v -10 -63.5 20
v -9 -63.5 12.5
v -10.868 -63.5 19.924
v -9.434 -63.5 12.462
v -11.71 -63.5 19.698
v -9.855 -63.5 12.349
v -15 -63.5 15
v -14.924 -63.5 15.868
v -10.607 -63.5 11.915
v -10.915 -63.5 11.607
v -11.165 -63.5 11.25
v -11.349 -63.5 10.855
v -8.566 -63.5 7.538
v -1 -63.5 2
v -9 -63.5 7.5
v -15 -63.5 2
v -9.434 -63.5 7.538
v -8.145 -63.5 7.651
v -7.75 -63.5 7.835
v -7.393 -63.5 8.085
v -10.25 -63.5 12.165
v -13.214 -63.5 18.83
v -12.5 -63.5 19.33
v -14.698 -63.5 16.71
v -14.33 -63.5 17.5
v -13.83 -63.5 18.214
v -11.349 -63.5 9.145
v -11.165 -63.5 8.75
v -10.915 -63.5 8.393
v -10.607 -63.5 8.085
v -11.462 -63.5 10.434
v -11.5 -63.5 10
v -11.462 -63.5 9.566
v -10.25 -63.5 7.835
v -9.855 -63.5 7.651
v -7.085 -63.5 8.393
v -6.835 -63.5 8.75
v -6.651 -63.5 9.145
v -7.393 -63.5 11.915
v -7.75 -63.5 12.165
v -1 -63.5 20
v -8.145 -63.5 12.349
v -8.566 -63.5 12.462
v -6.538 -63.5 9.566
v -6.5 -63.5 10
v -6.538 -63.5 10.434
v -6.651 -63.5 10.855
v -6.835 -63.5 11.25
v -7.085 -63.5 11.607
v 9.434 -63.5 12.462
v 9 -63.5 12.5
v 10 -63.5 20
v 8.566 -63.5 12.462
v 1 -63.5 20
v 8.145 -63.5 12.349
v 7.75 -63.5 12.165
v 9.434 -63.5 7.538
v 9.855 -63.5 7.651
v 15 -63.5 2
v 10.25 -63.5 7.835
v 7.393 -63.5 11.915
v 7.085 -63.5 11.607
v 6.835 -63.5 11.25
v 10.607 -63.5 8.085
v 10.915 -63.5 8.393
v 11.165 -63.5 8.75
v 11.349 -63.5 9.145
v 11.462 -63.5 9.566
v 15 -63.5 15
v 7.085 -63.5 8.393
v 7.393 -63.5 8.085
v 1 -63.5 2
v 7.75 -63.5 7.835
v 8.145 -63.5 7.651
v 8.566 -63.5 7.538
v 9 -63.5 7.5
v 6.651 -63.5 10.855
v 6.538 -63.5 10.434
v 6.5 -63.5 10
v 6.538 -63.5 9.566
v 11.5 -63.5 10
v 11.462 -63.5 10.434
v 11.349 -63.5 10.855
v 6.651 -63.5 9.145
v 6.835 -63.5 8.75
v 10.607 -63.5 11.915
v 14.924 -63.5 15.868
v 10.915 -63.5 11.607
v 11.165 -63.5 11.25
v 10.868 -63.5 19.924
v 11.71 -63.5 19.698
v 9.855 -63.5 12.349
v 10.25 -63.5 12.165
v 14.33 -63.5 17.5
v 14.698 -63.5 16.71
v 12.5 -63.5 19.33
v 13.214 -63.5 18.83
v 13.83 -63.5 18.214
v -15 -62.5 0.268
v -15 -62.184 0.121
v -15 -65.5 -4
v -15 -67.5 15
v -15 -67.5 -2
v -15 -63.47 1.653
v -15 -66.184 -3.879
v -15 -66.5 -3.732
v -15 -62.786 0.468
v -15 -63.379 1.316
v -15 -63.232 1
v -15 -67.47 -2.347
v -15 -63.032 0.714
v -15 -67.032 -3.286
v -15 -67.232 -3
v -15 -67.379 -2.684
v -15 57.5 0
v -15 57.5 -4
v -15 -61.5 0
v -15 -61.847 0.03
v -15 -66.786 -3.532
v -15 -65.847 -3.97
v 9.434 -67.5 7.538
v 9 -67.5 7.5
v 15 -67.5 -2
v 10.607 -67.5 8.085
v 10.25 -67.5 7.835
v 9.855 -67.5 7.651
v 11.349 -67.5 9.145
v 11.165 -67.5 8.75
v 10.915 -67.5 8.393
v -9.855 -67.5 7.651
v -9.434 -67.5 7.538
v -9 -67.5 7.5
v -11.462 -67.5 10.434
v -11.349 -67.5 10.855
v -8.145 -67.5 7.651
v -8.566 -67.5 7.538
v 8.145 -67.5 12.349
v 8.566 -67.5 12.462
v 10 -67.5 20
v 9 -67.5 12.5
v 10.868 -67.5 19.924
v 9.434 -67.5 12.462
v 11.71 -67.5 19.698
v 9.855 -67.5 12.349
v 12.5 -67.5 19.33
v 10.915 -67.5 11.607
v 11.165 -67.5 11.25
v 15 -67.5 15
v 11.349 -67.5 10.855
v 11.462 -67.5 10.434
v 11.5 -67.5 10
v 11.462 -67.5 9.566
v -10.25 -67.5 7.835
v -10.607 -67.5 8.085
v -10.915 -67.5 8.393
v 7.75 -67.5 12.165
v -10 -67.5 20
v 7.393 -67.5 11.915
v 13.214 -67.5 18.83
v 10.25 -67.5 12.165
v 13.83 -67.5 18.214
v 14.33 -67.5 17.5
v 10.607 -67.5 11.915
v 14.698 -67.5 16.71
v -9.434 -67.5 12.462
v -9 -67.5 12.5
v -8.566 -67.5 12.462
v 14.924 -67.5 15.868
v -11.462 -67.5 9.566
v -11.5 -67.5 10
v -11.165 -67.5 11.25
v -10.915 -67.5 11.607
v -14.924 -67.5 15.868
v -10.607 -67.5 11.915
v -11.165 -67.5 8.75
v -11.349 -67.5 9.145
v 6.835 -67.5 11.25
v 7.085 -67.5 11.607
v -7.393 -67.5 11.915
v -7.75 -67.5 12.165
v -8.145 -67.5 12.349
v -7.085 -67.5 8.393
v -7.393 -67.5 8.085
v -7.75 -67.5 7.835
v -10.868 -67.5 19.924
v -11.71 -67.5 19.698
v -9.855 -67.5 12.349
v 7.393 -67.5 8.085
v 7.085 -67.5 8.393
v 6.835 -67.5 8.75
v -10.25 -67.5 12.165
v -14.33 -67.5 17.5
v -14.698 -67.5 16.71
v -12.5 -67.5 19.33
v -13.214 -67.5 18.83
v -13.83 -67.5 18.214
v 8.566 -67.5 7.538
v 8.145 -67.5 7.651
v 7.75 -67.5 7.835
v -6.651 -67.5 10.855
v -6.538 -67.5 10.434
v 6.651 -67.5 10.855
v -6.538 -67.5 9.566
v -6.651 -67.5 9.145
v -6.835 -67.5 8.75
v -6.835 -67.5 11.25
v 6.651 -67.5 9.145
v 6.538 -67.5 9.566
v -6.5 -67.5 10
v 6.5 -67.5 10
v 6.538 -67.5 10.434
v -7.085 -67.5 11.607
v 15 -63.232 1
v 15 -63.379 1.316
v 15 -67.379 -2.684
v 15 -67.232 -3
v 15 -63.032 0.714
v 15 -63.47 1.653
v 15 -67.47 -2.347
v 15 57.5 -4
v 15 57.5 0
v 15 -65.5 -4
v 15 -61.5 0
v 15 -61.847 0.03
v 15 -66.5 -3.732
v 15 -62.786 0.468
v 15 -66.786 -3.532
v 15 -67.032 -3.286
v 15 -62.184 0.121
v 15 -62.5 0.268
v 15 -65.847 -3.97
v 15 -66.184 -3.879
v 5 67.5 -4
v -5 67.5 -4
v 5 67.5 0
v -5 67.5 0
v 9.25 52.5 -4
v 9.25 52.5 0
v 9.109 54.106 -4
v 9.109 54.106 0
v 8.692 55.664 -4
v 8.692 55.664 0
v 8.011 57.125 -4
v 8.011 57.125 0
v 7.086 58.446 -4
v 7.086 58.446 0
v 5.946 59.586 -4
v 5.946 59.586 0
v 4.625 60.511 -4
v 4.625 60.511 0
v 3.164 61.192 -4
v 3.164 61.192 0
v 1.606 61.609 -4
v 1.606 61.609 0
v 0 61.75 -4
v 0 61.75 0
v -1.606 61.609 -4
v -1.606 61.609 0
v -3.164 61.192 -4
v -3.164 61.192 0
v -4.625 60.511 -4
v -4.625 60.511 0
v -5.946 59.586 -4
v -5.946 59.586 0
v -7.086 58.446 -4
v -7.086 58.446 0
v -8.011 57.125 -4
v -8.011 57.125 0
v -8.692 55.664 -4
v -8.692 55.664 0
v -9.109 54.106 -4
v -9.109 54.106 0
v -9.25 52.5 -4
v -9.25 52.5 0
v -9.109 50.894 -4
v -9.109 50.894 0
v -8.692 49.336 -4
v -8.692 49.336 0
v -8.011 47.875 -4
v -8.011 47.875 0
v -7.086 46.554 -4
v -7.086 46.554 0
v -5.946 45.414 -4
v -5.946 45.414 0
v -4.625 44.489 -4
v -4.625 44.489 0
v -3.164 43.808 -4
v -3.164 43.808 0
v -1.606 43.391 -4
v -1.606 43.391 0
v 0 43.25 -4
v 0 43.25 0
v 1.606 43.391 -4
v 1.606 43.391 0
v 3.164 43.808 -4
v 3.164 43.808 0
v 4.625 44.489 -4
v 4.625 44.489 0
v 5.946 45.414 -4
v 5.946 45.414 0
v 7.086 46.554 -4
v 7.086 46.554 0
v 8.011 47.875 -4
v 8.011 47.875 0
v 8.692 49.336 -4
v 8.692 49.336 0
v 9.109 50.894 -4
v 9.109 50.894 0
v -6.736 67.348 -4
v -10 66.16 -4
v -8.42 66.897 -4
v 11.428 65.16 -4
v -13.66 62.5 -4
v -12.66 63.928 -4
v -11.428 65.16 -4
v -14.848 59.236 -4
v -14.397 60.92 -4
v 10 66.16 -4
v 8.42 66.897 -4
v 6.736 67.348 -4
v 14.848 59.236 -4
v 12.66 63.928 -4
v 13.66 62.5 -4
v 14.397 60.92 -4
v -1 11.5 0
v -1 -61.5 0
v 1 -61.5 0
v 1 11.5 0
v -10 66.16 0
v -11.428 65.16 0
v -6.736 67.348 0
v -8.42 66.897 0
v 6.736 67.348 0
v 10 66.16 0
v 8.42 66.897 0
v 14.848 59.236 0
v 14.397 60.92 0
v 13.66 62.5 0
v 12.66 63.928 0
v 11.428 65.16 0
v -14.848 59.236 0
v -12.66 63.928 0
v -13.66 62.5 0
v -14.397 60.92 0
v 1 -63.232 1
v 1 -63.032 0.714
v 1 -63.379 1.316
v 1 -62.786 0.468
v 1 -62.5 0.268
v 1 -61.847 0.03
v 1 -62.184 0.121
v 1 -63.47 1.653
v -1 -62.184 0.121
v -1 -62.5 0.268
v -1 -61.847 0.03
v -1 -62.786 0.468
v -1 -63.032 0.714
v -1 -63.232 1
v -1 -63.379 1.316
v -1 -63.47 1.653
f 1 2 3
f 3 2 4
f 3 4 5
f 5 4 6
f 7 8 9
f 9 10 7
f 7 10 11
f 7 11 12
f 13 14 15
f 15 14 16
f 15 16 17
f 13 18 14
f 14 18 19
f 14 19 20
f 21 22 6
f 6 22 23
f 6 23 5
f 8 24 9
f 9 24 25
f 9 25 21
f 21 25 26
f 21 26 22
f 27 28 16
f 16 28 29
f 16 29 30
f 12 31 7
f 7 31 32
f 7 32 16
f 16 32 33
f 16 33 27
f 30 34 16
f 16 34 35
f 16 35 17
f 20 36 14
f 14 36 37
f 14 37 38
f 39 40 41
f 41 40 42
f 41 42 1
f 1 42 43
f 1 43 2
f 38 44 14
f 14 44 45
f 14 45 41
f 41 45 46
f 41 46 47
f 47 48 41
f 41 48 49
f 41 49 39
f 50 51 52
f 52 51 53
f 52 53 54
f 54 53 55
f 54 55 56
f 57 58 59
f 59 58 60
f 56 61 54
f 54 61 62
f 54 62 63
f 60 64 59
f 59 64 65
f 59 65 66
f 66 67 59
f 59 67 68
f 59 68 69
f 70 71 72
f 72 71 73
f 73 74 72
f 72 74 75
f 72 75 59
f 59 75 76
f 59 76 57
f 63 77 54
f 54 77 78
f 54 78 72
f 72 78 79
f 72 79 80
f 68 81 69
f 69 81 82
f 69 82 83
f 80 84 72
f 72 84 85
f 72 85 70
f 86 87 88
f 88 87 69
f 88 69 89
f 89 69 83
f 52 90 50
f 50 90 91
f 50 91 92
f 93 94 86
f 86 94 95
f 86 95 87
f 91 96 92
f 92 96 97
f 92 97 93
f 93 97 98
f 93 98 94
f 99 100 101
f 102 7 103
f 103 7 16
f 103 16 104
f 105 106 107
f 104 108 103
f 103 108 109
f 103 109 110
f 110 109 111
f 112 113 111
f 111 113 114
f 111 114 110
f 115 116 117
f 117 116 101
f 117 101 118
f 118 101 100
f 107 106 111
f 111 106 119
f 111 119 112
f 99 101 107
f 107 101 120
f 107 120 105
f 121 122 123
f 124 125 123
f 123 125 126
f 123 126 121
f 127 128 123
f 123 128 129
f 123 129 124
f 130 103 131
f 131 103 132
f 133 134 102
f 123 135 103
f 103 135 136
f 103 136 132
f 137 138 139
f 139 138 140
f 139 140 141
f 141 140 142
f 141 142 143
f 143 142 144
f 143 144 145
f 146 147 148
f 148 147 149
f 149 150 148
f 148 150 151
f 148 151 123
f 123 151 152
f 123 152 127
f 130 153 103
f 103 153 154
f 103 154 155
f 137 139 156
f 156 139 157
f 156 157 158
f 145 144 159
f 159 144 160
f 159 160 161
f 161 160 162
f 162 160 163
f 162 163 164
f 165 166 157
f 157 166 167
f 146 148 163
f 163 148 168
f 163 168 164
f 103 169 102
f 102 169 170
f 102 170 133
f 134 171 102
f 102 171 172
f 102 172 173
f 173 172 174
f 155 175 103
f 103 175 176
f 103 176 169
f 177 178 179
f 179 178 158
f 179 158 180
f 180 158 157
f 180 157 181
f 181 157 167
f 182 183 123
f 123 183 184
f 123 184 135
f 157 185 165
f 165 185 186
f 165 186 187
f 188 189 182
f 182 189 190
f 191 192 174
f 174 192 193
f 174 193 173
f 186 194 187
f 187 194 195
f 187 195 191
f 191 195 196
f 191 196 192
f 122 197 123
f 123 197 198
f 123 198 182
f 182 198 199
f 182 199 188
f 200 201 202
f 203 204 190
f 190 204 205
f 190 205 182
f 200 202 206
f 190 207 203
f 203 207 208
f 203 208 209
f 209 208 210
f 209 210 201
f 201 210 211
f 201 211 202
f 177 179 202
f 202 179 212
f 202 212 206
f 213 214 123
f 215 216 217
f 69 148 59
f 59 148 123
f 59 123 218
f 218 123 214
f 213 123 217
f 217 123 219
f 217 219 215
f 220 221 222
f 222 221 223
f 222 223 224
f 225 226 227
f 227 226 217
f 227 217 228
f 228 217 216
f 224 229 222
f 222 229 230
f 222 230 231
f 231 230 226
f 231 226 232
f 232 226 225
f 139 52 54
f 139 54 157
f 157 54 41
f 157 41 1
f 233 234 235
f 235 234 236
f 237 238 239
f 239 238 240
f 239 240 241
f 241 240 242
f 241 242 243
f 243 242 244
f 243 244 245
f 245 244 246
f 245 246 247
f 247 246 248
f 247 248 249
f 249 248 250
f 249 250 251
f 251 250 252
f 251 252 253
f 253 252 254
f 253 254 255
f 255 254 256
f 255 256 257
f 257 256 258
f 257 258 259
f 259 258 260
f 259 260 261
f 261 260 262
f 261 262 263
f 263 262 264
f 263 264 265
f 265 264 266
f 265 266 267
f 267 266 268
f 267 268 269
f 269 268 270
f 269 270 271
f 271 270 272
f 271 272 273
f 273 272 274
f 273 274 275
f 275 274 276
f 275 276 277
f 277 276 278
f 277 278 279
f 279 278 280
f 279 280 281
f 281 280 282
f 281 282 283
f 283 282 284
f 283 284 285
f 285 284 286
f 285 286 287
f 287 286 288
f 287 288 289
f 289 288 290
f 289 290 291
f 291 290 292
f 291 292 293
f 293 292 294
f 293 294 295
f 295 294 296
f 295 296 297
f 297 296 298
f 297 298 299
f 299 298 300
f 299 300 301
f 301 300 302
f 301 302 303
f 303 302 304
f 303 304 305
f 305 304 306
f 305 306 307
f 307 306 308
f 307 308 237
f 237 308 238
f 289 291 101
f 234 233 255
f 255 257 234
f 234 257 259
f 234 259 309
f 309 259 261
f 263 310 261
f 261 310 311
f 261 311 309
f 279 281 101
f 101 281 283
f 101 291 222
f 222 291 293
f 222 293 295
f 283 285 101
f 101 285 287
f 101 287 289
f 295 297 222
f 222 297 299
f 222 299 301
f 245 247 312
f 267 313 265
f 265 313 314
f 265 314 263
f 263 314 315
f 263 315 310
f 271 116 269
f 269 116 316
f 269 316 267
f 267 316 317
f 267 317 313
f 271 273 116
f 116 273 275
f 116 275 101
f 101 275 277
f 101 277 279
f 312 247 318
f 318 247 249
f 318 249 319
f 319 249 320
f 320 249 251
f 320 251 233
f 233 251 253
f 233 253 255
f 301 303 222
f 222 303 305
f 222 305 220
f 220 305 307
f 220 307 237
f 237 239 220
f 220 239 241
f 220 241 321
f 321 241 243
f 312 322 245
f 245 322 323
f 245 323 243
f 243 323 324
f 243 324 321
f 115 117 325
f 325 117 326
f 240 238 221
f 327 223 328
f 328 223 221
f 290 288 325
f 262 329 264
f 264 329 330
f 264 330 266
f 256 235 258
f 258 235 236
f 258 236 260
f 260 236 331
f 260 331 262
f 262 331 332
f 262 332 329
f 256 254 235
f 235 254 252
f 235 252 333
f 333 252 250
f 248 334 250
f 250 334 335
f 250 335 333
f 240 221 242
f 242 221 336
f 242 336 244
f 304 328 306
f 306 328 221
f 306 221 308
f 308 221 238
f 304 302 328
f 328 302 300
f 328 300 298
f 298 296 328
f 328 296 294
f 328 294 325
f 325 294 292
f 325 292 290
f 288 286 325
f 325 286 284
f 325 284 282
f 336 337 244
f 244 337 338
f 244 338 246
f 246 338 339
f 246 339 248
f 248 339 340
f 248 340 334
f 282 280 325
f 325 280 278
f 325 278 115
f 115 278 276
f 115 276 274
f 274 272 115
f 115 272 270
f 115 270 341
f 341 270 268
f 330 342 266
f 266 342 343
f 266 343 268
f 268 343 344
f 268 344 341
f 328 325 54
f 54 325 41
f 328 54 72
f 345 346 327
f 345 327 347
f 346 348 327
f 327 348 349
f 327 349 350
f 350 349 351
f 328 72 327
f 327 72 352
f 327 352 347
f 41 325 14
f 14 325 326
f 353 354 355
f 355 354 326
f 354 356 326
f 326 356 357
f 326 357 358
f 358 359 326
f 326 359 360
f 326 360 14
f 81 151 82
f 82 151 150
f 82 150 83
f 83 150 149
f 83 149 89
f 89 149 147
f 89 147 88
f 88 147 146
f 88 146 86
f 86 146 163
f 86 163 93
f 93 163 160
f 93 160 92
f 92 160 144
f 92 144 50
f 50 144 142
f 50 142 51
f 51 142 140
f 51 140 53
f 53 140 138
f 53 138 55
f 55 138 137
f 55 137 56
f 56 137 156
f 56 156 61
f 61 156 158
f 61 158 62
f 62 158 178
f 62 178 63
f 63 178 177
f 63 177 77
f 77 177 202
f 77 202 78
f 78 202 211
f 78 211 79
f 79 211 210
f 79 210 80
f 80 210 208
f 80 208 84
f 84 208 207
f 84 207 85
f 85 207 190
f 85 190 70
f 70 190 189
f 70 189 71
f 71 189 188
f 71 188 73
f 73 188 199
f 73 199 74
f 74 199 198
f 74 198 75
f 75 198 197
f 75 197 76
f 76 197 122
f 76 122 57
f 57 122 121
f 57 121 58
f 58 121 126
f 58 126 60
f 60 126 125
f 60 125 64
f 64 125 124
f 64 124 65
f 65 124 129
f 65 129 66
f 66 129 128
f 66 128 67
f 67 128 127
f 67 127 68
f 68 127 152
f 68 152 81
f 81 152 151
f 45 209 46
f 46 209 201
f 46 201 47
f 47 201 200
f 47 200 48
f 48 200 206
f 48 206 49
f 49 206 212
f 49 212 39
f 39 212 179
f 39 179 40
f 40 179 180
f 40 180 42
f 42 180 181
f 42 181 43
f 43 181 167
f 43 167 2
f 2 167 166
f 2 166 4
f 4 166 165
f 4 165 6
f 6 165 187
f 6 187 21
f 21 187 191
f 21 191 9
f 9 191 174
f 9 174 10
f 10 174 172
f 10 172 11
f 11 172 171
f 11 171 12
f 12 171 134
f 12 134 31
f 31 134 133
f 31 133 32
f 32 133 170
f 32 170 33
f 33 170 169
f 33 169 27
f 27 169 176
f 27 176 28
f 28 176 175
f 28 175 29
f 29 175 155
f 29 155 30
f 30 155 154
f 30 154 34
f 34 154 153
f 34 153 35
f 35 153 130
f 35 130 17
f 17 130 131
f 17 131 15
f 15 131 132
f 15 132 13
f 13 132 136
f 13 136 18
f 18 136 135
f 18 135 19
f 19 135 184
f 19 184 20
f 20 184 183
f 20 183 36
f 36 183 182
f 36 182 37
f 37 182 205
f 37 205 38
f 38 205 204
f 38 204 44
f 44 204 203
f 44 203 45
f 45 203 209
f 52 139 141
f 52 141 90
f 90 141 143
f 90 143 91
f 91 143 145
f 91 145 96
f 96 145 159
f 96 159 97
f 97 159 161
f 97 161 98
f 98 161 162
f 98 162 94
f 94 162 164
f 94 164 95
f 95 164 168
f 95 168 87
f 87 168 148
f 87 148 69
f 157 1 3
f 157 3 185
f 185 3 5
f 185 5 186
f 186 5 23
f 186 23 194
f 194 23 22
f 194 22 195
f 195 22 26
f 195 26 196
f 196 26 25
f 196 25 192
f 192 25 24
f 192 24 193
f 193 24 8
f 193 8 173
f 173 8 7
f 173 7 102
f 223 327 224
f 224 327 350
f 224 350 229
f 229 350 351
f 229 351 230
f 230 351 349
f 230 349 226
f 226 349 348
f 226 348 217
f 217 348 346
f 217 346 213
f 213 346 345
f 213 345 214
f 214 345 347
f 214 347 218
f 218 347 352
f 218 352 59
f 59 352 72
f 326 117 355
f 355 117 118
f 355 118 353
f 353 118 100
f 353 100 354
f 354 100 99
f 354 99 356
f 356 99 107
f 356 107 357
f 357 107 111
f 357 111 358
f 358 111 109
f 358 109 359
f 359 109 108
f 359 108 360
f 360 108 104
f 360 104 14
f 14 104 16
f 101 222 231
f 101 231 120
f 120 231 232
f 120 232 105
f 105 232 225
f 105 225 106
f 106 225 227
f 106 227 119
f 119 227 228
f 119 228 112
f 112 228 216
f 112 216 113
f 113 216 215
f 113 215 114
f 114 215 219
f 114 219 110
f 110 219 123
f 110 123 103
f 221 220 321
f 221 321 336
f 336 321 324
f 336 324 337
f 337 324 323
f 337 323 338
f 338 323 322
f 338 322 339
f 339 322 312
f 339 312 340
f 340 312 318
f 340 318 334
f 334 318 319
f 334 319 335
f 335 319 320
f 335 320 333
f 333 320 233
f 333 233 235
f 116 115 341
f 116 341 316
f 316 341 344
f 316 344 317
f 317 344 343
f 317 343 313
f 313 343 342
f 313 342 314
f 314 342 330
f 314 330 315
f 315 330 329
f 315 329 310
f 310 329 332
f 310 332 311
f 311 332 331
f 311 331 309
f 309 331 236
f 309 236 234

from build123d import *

# Parameters (mm, degrees)
SKETCH_1_W          = 30
SKETCH_1_H          = 4
EXTRUDE_1_DEPTH     = 20
SKETCH_1_3_W        = 30
SKETCH_1_3_H        = 135
SKETCH_1_3_R        = 9.25
EXTRUDE_2_DEPTH     = 4
RIB_3_REACH         = 73.981
SKETCH_2_WALL_W     = 223.58267397
SKETCH_2_WALL_H     = 2
SKETCH_3_R          = 2.5
CUT_EXTRUDE_1_DEPTH = 4
FILLET_1_R          = 5
FILLET_2_R          = 2
FILLET_3_R          = 10


with BuildPart() as part:
    # 스케치1 → 보스-돌출1 (new body)
    with BuildSketch(Plane.XY):
        with Locations((0, -65.5)):
            Rectangle(SKETCH_1_W, SKETCH_1_H)
    extrude(amount=EXTRUDE_1_DEPTH)

    # 스케치1<3> → 보스-돌출2 (add)
    with BuildSketch(Plane.XY):
        Rectangle(SKETCH_1_3_W, SKETCH_1_3_H)
        with Locations((0, 52.5)):
            Circle(SKETCH_1_3_R, mode=Mode.SUBTRACT)
    extrude(amount=-EXTRUDE_2_DEPTH)

    # 스케치2 wall → 보강대3 (add, up to next)
    with BuildSketch(Plane(origin=(0, -26, 10), x_dir=(0, -0.966234939601, 0.25766265056), z_dir=(0, -0.25766265056, -0.966234939601)), mode=Mode.PRIVATE) as rib_3_sk1:
        Rectangle(SKETCH_2_WALL_W, SKETCH_2_WALL_H)
    rib_3_tool1 = extrude(rib_3_sk1.sketch, amount=RIB_3_REACH, mode=Mode.PRIVATE) - part.part
    add(rib_3_tool1.solids().sort_by_distance((0, -26, 10))[0])

    # 스케치3 → 컷-돌출1 (cut)
    with BuildSketch(Plane.XZ.offset(67.5)):
        with Locations((-9, 10)):
            Circle(SKETCH_3_R)
        with Locations((9, 10)):
            Circle(SKETCH_3_R)
    extrude(amount=-CUT_EXTRUDE_1_DEPTH, mode=Mode.SUBTRACT)

    # 필렛1
    fillet_1_edges = [part.edges().sort_by_distance(p)[0] for p in [
        (15, -65.5, 20),
        (-15, -65.5, 20),
    ]]
    fillet(fillet_1_edges, radius=FILLET_1_R)

    # 필렛2
    fillet_2_edges = [part.edges().sort_by_distance(p)[0] for p in [
        (8, -63.5, 0),
        (-8, -63.5, 0),
        (0, -67.5, -4),
    ]]
    fillet(fillet_2_edges, radius=FILLET_2_R)

    # 필렛3
    fillet_3_edges = [part.edges().sort_by_distance(p)[0] for p in [
        (15, 67.5, -2),
        (-15, 67.5, -2),
    ]]
    fillet(fillet_3_edges, radius=FILLET_3_R)


solid = part.part
